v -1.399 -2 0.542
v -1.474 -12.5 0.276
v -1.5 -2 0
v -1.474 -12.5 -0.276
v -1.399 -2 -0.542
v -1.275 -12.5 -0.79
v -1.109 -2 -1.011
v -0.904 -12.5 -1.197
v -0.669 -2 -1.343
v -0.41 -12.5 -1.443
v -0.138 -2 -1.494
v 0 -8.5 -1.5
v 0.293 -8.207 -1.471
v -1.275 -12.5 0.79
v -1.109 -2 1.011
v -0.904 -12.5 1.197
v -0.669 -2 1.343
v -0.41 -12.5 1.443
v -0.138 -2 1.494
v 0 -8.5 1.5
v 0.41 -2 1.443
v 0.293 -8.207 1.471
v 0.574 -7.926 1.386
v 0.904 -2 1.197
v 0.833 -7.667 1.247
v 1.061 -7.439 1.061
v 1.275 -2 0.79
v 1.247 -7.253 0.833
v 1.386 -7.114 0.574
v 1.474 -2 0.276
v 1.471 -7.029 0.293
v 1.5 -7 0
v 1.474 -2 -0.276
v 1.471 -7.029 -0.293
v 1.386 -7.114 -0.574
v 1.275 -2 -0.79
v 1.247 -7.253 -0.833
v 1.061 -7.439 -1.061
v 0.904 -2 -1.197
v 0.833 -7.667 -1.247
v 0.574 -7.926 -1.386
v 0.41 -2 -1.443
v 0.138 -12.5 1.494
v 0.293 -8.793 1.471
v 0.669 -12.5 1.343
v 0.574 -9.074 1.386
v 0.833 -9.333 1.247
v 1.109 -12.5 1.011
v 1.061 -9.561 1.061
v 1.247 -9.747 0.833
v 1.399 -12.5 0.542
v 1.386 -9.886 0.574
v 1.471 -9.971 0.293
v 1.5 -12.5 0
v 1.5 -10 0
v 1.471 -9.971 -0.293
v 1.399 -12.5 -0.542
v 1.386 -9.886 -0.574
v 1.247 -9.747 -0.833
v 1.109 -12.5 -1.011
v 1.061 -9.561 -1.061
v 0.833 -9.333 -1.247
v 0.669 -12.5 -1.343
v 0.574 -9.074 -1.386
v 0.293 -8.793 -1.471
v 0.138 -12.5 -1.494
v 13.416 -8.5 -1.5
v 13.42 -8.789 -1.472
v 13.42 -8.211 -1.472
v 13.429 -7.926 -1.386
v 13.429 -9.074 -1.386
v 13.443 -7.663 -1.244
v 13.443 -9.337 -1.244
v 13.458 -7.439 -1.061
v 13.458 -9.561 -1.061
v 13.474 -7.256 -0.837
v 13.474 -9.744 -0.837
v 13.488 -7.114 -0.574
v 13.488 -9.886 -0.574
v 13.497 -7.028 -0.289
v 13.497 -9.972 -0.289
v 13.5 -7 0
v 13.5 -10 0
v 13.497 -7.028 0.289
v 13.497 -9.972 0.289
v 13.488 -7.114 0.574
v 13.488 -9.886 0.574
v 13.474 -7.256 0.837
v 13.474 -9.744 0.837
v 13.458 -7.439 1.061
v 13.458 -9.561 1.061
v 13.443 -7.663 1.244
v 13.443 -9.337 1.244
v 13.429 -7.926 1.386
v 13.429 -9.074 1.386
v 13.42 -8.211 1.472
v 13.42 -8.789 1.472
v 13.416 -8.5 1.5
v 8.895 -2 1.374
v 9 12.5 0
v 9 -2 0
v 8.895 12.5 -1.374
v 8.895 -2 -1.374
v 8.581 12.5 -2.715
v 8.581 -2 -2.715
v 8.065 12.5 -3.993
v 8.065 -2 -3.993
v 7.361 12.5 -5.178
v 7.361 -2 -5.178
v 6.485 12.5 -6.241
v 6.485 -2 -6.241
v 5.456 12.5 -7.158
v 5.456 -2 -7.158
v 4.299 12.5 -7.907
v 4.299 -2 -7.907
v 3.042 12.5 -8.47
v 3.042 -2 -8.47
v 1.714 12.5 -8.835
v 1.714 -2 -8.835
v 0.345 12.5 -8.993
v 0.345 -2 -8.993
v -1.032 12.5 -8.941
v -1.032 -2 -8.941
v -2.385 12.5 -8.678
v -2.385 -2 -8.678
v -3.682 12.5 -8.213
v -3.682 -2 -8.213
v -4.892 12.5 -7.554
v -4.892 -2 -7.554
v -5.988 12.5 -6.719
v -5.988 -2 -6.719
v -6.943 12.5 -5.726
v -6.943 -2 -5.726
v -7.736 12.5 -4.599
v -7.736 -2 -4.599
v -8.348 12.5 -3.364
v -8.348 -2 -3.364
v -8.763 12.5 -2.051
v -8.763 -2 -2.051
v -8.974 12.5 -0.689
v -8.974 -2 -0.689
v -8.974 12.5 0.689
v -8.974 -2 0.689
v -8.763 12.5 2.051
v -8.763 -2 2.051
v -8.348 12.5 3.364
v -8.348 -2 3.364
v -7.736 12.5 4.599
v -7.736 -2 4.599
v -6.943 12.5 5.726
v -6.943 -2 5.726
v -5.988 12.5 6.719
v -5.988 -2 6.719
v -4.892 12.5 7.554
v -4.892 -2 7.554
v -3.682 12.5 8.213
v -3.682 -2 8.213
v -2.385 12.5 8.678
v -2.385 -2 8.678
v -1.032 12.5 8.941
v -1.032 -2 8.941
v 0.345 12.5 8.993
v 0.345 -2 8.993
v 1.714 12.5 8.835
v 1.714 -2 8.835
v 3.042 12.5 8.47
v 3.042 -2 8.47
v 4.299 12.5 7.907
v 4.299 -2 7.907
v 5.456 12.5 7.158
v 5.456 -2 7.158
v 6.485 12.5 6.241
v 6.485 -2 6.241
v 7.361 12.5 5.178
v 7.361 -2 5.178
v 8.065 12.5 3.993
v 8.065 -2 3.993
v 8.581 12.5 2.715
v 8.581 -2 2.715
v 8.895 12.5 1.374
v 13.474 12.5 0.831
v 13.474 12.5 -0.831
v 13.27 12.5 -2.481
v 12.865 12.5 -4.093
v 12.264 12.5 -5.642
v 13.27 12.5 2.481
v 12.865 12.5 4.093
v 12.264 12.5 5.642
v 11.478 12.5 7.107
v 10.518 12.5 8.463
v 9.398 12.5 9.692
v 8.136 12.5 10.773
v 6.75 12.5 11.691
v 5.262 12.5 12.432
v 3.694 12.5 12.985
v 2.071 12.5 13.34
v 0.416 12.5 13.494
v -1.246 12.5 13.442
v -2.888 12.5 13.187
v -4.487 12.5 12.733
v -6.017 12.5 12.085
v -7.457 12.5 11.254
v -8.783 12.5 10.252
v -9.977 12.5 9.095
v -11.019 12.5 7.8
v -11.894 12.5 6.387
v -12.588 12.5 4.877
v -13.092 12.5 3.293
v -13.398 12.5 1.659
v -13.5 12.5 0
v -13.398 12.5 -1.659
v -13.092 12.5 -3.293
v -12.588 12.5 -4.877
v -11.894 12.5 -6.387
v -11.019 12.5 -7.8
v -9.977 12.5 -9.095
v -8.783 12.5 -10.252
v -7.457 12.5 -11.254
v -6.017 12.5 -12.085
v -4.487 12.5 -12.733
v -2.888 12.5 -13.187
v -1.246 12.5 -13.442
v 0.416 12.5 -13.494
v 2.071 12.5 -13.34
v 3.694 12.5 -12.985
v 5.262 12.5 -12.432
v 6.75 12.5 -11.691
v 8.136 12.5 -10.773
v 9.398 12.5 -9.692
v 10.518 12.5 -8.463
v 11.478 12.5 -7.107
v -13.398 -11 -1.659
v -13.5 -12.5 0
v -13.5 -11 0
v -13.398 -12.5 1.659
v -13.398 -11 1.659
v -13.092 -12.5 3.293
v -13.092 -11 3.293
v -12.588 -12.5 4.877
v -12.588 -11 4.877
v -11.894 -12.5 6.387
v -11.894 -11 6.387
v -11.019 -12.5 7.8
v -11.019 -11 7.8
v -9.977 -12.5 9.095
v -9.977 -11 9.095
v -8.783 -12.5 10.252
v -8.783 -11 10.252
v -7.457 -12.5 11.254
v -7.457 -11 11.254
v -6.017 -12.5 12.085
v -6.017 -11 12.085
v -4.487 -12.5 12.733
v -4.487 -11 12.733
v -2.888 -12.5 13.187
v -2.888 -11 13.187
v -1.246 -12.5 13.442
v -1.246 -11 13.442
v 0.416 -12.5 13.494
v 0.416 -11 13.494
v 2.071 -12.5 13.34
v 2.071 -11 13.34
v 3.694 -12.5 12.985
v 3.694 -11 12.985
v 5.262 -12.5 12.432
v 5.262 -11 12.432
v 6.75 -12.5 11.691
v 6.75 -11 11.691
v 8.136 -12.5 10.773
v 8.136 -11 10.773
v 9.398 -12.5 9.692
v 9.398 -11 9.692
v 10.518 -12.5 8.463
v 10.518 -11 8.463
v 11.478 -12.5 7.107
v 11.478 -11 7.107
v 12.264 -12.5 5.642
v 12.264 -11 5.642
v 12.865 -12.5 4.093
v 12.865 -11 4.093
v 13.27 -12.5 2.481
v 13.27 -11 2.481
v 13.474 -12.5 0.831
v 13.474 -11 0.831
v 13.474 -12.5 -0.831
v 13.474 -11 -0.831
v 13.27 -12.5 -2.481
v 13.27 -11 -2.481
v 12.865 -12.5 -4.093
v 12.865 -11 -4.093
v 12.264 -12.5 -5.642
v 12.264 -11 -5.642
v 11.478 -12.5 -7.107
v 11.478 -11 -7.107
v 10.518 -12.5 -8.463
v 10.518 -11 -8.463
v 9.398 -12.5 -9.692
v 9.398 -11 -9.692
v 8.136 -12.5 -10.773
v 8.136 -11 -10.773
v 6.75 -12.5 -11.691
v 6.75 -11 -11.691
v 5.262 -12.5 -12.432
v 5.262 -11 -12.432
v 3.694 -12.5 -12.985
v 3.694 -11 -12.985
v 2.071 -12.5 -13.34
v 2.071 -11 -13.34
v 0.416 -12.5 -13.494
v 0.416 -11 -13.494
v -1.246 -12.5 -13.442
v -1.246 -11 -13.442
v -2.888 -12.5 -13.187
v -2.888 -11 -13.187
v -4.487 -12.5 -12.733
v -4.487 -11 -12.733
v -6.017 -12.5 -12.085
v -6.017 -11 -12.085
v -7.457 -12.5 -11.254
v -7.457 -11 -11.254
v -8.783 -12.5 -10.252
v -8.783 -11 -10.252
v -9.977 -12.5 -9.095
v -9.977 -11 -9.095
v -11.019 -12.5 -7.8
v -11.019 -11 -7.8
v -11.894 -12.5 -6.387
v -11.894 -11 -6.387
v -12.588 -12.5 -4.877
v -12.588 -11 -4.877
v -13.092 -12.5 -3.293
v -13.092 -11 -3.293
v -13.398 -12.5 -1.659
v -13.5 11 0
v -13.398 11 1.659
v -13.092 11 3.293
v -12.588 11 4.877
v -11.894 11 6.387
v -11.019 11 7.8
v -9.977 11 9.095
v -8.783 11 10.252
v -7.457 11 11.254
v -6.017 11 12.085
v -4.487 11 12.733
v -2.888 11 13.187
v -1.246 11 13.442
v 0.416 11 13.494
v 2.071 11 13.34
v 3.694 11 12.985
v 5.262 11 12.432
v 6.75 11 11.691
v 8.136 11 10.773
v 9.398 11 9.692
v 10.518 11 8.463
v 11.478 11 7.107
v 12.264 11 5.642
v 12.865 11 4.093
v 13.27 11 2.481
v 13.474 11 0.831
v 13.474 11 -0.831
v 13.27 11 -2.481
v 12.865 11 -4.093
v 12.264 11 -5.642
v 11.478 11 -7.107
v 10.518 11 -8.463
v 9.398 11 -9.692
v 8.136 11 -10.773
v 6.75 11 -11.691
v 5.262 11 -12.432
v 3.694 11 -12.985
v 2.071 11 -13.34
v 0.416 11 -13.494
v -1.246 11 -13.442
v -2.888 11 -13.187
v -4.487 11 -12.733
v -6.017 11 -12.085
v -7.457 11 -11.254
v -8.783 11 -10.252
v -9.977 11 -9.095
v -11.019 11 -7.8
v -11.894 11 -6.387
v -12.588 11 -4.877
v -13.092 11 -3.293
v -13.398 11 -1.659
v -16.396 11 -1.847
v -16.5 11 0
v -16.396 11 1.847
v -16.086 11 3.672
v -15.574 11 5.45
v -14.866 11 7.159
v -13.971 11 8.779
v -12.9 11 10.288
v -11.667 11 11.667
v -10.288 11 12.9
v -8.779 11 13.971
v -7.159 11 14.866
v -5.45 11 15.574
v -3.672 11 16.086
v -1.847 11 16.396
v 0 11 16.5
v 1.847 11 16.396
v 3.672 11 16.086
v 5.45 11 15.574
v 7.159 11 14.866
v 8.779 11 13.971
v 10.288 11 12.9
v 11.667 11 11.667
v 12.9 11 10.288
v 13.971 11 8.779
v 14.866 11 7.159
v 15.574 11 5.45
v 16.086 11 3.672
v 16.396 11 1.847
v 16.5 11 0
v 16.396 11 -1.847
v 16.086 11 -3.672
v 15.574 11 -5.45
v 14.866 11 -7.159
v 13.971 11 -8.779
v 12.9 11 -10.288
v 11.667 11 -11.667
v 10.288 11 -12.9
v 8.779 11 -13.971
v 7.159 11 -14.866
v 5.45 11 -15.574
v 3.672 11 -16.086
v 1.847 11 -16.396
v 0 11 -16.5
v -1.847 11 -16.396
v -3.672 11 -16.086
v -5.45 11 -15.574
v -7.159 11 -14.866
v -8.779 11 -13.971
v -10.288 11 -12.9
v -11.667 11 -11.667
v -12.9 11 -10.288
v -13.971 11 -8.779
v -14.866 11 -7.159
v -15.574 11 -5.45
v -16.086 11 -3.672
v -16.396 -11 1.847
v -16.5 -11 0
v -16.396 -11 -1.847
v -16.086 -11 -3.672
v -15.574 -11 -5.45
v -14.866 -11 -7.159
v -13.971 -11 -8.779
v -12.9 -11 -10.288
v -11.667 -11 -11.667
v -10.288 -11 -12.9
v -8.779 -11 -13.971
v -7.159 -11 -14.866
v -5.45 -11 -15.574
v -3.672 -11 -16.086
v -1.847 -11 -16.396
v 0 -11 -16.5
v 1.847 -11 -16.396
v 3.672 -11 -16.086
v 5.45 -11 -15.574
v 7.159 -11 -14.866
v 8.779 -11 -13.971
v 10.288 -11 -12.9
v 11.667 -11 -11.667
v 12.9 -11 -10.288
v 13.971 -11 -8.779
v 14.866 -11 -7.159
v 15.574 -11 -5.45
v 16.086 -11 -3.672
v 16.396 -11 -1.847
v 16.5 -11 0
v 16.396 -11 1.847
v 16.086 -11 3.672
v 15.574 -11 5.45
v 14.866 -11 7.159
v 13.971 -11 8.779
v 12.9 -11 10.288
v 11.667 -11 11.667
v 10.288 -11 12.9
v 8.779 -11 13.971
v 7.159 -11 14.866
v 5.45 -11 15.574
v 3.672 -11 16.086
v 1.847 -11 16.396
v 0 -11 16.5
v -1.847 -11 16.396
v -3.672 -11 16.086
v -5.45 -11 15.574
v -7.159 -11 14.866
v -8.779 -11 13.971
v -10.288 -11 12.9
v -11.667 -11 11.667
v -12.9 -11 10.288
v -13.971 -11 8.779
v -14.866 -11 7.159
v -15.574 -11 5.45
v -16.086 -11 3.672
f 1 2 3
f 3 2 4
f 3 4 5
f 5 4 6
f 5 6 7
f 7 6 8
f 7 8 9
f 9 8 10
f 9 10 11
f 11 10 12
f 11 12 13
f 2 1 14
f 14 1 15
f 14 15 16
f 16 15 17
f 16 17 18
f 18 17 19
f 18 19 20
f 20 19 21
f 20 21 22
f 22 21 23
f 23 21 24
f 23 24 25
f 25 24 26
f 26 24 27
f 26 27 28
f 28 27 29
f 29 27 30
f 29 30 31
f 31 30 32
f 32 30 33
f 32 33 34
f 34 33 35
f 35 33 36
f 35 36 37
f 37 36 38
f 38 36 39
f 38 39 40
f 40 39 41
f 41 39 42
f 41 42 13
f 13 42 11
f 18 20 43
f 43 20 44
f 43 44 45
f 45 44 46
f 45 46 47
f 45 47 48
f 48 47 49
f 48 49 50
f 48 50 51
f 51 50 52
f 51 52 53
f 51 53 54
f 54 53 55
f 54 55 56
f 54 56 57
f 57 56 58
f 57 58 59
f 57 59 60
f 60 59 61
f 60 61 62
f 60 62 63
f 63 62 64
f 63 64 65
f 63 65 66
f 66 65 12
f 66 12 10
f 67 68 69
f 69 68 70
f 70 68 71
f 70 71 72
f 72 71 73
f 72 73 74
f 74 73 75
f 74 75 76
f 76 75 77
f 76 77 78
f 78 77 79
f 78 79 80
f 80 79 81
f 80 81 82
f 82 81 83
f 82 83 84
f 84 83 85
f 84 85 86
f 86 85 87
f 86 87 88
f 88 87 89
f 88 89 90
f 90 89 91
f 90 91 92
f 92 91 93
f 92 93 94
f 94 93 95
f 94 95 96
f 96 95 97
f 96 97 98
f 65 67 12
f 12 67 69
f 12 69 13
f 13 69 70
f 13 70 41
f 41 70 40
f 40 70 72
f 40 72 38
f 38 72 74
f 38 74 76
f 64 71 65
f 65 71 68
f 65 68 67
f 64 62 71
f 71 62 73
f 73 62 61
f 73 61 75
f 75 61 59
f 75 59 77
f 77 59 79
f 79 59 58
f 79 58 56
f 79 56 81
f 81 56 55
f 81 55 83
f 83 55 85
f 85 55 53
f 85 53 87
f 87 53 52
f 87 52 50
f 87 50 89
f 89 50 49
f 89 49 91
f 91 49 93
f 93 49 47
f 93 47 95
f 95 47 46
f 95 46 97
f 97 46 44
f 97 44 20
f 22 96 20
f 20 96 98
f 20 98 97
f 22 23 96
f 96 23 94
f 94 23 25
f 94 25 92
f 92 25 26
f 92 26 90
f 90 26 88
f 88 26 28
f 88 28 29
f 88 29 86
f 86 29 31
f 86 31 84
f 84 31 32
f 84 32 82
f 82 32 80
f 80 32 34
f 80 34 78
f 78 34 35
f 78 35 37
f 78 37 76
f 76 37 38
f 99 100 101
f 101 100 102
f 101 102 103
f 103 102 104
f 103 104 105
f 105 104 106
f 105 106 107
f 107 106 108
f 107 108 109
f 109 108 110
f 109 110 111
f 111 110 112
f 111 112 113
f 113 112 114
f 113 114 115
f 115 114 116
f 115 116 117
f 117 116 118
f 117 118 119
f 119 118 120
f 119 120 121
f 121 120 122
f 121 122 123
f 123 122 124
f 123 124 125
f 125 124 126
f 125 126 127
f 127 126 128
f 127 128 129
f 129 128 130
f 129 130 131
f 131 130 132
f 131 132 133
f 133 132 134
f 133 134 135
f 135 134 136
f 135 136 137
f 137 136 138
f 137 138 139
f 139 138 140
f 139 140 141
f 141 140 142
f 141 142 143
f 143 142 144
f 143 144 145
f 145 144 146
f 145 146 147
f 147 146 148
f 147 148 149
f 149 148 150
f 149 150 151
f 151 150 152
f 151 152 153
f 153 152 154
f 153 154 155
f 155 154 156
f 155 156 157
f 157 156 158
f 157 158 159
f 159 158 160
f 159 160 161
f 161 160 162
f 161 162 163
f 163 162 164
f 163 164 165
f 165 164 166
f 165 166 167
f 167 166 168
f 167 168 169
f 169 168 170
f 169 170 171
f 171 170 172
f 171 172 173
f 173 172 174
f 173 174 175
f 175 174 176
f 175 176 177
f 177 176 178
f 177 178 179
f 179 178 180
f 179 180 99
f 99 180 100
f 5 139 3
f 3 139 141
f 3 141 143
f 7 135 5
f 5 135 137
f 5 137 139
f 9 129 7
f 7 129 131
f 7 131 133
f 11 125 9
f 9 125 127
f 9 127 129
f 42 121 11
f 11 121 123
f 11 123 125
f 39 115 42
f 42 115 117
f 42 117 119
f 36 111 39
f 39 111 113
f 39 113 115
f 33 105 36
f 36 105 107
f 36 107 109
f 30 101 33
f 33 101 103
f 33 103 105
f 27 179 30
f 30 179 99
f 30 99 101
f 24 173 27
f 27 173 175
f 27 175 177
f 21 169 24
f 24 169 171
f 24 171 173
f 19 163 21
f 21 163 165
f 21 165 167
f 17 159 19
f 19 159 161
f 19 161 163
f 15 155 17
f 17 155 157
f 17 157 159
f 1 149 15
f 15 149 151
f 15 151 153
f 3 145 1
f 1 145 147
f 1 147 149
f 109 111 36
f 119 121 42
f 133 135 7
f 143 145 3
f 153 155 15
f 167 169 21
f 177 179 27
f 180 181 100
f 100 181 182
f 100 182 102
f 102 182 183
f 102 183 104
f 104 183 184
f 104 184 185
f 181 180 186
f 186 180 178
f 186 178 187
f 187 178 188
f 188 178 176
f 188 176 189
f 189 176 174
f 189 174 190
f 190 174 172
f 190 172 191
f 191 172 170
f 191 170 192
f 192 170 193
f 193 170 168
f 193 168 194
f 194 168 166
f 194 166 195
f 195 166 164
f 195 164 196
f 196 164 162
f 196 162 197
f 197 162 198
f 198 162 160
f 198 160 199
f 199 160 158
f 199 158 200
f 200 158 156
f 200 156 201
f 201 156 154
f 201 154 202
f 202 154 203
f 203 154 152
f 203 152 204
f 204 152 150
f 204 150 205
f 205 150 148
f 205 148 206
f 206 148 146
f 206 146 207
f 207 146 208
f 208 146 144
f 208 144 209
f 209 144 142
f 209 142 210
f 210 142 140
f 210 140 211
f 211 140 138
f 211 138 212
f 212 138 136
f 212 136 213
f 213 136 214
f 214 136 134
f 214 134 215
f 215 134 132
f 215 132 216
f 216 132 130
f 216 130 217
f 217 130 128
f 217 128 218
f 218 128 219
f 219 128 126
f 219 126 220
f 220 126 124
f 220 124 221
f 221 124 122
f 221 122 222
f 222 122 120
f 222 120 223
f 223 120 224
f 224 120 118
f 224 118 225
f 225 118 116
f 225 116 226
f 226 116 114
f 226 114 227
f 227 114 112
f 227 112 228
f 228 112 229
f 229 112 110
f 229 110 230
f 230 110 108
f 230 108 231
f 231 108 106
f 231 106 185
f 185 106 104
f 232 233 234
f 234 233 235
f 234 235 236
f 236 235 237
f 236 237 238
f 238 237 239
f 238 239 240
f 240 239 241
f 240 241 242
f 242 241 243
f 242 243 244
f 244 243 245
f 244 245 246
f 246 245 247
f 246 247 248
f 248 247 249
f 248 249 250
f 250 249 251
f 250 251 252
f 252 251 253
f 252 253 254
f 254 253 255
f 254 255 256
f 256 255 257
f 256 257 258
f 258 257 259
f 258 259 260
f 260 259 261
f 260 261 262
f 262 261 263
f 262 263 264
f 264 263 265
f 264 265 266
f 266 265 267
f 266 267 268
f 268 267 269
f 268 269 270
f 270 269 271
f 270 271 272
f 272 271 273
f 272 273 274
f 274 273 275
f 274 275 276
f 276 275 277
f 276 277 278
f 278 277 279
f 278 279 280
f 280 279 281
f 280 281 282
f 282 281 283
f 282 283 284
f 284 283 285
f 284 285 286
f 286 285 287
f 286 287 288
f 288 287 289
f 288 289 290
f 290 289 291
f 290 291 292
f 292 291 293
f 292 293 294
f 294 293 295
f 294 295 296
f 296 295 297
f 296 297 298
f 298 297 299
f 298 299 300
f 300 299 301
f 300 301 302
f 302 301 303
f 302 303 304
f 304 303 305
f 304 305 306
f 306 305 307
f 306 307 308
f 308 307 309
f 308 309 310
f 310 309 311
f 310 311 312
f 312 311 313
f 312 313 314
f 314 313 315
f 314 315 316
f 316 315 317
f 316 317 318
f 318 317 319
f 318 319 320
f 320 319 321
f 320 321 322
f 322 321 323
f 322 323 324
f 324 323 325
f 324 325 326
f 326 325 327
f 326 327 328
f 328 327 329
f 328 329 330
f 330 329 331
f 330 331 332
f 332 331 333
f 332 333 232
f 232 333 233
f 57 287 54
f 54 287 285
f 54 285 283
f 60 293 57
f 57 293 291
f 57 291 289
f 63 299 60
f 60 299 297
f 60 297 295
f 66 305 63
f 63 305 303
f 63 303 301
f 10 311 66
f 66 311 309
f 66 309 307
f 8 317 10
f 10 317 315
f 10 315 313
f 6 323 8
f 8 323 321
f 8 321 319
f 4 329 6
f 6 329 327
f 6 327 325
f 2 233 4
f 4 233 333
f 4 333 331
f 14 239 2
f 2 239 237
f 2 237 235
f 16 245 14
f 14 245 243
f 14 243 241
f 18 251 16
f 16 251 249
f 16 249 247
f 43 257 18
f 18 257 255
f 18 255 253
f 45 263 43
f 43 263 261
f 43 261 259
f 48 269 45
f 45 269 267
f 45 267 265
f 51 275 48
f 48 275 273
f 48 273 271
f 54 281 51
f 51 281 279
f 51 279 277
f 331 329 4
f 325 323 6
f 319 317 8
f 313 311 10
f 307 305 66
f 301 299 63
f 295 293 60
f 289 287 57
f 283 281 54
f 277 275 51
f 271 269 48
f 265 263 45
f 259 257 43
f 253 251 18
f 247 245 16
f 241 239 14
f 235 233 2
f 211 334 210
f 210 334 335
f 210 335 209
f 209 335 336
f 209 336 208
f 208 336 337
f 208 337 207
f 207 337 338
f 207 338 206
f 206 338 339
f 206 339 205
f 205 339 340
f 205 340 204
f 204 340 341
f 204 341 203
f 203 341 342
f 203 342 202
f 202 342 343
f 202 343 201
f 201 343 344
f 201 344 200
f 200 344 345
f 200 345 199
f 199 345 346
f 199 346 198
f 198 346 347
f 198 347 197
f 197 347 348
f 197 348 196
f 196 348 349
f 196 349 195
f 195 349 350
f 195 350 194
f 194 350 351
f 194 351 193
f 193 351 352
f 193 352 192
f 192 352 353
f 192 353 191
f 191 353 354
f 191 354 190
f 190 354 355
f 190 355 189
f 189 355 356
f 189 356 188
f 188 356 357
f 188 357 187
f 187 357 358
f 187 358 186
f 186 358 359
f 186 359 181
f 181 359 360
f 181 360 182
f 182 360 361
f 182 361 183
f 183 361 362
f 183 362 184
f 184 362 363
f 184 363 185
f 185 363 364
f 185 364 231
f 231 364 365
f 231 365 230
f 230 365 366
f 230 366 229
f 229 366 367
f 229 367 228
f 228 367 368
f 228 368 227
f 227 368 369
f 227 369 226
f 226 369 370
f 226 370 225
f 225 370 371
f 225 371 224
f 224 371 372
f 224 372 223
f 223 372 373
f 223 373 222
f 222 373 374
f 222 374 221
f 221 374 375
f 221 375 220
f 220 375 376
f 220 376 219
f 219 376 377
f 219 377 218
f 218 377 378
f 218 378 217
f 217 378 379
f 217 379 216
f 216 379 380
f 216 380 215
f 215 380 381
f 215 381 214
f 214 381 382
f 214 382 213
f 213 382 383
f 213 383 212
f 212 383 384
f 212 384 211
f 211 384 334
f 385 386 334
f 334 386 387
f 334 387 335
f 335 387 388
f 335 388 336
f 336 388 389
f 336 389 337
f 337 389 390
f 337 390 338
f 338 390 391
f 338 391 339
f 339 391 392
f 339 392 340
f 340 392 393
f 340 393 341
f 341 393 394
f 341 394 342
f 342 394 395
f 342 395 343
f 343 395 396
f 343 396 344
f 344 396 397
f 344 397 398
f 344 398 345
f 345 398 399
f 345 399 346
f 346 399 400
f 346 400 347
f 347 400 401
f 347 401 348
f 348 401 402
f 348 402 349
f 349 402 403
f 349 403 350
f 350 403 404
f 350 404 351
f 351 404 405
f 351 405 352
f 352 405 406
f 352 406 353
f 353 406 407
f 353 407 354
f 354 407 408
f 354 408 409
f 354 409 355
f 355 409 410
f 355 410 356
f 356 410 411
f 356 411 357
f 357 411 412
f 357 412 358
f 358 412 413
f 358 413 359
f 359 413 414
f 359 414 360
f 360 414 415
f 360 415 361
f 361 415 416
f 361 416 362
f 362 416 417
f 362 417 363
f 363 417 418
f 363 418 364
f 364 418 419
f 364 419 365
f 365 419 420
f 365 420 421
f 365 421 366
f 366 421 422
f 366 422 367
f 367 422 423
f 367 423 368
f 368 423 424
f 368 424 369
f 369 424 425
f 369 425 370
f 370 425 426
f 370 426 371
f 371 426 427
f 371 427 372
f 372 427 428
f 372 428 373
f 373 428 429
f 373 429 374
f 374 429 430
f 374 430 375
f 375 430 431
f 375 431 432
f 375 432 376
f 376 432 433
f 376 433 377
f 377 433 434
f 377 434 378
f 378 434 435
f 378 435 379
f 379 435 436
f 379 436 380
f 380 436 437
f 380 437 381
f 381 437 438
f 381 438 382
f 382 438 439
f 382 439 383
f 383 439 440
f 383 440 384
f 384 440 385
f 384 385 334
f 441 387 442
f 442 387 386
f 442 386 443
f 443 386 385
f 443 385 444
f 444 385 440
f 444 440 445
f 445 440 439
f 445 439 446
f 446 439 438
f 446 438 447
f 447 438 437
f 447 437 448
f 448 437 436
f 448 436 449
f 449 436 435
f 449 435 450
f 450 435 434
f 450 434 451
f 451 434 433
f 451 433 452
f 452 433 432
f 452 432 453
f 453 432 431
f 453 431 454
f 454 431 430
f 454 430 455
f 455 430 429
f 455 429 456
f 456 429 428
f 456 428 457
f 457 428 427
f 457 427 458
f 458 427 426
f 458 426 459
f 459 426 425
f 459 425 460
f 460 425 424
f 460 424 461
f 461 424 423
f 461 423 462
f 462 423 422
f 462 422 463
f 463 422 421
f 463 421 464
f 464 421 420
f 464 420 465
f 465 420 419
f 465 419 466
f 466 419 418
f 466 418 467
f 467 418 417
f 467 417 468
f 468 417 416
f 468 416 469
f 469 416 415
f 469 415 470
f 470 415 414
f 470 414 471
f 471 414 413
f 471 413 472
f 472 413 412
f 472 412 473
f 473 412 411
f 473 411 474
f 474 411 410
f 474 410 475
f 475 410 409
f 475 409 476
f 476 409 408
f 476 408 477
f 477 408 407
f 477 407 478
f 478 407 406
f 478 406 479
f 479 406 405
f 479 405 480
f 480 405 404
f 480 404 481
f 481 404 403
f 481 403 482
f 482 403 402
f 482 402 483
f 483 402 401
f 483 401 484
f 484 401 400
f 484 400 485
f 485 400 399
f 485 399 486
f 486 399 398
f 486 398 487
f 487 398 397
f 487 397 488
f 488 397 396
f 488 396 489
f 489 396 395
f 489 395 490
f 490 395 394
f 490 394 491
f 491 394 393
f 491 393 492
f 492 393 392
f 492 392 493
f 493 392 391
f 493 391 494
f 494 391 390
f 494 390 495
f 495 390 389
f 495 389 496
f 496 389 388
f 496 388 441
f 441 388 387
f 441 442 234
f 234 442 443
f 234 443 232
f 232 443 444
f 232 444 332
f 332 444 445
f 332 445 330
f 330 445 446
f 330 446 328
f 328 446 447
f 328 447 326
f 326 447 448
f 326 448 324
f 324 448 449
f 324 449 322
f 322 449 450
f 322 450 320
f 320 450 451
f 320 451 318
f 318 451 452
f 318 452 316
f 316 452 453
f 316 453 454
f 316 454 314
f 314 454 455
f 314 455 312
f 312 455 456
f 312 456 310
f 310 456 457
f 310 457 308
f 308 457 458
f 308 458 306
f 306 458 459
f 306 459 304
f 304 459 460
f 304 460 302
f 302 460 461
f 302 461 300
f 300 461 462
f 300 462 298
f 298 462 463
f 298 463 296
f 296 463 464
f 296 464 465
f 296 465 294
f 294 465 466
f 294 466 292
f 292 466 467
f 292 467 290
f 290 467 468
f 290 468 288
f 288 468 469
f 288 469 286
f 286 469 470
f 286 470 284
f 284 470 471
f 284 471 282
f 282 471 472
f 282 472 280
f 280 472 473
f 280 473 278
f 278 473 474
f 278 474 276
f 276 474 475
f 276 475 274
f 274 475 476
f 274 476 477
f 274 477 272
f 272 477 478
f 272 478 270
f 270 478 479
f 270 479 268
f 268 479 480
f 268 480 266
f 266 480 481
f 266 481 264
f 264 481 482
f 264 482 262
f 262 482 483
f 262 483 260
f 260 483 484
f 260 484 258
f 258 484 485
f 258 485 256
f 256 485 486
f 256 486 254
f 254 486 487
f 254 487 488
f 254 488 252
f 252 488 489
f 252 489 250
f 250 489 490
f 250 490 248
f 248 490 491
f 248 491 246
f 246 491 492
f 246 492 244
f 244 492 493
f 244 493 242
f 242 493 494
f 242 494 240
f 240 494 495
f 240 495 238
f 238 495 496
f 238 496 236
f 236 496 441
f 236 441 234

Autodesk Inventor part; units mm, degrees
ref_plane "YZ Plane" through (0, 0, 0) normal (1, 0, 0) x (0, 1, 0)
ref_plane "XZ Plane" through (0, 0, 0) normal (0, 1, 0) x (-1, 0, 0)
ref_plane "XY Plane" through (0, 0, 0) normal (0, 0, 1) x (1, 0, 0)
sketch "Náčrt1" plane through (0, 0, 0) normal (0, 1, 0) x (-1, 0, 0)
  circle A0 centre (0, 0) radius 16.5
  circle A1 centre (0, 0) radius 13.5
  dimension "d0" = 33
  dimension "d1" = 27
extrude "Vysunutí1" add sketch "Náčrt1" along normal mid plane 25 contours A1
sketch "Náčrt4" plane through (0, 0, 0) normal (1, 0, 0) x (0, 1, 0)
  line L0 (-12.5, 13.5) -> (-12.5, -13.5) projected
  point P0 (0, 0)
  point P1 (-8.5, 0)
  dimension "d16" = 4
hole "Díra2" at (0, -8.5, 0) direction (1, 0, 0) diameter 3 end through all
thread "Závit1" size "M3x0.5" class "6H" standard "ISO Metric profile" full length
extrude "Vysunutí2" add sketch "Náčrt1" along normal mid plane 22
sketch "Náčrt2" plane through (0, 12.5, 0) normal (0, 1, 0) x (1, 0, 0)
  circle A0 centre (0, 0) radius 9
  dimension "d6" = 18
extrude "Vysunutí3" cut sketch "Náčrt2" against normal blind 14.5
sketch "Náčrt3" plane through (0, -12.5, 0) normal (0, -1, 0) x (1, 0, 0)
  circle A0 centre (0, 0) radius 13.5 projected
hole "Díra1" at (0, -12.5, 0) direction (0, 1, 0) diameter 3 end through all
properties part number "JSUMO_Wheel_33x20mm"
